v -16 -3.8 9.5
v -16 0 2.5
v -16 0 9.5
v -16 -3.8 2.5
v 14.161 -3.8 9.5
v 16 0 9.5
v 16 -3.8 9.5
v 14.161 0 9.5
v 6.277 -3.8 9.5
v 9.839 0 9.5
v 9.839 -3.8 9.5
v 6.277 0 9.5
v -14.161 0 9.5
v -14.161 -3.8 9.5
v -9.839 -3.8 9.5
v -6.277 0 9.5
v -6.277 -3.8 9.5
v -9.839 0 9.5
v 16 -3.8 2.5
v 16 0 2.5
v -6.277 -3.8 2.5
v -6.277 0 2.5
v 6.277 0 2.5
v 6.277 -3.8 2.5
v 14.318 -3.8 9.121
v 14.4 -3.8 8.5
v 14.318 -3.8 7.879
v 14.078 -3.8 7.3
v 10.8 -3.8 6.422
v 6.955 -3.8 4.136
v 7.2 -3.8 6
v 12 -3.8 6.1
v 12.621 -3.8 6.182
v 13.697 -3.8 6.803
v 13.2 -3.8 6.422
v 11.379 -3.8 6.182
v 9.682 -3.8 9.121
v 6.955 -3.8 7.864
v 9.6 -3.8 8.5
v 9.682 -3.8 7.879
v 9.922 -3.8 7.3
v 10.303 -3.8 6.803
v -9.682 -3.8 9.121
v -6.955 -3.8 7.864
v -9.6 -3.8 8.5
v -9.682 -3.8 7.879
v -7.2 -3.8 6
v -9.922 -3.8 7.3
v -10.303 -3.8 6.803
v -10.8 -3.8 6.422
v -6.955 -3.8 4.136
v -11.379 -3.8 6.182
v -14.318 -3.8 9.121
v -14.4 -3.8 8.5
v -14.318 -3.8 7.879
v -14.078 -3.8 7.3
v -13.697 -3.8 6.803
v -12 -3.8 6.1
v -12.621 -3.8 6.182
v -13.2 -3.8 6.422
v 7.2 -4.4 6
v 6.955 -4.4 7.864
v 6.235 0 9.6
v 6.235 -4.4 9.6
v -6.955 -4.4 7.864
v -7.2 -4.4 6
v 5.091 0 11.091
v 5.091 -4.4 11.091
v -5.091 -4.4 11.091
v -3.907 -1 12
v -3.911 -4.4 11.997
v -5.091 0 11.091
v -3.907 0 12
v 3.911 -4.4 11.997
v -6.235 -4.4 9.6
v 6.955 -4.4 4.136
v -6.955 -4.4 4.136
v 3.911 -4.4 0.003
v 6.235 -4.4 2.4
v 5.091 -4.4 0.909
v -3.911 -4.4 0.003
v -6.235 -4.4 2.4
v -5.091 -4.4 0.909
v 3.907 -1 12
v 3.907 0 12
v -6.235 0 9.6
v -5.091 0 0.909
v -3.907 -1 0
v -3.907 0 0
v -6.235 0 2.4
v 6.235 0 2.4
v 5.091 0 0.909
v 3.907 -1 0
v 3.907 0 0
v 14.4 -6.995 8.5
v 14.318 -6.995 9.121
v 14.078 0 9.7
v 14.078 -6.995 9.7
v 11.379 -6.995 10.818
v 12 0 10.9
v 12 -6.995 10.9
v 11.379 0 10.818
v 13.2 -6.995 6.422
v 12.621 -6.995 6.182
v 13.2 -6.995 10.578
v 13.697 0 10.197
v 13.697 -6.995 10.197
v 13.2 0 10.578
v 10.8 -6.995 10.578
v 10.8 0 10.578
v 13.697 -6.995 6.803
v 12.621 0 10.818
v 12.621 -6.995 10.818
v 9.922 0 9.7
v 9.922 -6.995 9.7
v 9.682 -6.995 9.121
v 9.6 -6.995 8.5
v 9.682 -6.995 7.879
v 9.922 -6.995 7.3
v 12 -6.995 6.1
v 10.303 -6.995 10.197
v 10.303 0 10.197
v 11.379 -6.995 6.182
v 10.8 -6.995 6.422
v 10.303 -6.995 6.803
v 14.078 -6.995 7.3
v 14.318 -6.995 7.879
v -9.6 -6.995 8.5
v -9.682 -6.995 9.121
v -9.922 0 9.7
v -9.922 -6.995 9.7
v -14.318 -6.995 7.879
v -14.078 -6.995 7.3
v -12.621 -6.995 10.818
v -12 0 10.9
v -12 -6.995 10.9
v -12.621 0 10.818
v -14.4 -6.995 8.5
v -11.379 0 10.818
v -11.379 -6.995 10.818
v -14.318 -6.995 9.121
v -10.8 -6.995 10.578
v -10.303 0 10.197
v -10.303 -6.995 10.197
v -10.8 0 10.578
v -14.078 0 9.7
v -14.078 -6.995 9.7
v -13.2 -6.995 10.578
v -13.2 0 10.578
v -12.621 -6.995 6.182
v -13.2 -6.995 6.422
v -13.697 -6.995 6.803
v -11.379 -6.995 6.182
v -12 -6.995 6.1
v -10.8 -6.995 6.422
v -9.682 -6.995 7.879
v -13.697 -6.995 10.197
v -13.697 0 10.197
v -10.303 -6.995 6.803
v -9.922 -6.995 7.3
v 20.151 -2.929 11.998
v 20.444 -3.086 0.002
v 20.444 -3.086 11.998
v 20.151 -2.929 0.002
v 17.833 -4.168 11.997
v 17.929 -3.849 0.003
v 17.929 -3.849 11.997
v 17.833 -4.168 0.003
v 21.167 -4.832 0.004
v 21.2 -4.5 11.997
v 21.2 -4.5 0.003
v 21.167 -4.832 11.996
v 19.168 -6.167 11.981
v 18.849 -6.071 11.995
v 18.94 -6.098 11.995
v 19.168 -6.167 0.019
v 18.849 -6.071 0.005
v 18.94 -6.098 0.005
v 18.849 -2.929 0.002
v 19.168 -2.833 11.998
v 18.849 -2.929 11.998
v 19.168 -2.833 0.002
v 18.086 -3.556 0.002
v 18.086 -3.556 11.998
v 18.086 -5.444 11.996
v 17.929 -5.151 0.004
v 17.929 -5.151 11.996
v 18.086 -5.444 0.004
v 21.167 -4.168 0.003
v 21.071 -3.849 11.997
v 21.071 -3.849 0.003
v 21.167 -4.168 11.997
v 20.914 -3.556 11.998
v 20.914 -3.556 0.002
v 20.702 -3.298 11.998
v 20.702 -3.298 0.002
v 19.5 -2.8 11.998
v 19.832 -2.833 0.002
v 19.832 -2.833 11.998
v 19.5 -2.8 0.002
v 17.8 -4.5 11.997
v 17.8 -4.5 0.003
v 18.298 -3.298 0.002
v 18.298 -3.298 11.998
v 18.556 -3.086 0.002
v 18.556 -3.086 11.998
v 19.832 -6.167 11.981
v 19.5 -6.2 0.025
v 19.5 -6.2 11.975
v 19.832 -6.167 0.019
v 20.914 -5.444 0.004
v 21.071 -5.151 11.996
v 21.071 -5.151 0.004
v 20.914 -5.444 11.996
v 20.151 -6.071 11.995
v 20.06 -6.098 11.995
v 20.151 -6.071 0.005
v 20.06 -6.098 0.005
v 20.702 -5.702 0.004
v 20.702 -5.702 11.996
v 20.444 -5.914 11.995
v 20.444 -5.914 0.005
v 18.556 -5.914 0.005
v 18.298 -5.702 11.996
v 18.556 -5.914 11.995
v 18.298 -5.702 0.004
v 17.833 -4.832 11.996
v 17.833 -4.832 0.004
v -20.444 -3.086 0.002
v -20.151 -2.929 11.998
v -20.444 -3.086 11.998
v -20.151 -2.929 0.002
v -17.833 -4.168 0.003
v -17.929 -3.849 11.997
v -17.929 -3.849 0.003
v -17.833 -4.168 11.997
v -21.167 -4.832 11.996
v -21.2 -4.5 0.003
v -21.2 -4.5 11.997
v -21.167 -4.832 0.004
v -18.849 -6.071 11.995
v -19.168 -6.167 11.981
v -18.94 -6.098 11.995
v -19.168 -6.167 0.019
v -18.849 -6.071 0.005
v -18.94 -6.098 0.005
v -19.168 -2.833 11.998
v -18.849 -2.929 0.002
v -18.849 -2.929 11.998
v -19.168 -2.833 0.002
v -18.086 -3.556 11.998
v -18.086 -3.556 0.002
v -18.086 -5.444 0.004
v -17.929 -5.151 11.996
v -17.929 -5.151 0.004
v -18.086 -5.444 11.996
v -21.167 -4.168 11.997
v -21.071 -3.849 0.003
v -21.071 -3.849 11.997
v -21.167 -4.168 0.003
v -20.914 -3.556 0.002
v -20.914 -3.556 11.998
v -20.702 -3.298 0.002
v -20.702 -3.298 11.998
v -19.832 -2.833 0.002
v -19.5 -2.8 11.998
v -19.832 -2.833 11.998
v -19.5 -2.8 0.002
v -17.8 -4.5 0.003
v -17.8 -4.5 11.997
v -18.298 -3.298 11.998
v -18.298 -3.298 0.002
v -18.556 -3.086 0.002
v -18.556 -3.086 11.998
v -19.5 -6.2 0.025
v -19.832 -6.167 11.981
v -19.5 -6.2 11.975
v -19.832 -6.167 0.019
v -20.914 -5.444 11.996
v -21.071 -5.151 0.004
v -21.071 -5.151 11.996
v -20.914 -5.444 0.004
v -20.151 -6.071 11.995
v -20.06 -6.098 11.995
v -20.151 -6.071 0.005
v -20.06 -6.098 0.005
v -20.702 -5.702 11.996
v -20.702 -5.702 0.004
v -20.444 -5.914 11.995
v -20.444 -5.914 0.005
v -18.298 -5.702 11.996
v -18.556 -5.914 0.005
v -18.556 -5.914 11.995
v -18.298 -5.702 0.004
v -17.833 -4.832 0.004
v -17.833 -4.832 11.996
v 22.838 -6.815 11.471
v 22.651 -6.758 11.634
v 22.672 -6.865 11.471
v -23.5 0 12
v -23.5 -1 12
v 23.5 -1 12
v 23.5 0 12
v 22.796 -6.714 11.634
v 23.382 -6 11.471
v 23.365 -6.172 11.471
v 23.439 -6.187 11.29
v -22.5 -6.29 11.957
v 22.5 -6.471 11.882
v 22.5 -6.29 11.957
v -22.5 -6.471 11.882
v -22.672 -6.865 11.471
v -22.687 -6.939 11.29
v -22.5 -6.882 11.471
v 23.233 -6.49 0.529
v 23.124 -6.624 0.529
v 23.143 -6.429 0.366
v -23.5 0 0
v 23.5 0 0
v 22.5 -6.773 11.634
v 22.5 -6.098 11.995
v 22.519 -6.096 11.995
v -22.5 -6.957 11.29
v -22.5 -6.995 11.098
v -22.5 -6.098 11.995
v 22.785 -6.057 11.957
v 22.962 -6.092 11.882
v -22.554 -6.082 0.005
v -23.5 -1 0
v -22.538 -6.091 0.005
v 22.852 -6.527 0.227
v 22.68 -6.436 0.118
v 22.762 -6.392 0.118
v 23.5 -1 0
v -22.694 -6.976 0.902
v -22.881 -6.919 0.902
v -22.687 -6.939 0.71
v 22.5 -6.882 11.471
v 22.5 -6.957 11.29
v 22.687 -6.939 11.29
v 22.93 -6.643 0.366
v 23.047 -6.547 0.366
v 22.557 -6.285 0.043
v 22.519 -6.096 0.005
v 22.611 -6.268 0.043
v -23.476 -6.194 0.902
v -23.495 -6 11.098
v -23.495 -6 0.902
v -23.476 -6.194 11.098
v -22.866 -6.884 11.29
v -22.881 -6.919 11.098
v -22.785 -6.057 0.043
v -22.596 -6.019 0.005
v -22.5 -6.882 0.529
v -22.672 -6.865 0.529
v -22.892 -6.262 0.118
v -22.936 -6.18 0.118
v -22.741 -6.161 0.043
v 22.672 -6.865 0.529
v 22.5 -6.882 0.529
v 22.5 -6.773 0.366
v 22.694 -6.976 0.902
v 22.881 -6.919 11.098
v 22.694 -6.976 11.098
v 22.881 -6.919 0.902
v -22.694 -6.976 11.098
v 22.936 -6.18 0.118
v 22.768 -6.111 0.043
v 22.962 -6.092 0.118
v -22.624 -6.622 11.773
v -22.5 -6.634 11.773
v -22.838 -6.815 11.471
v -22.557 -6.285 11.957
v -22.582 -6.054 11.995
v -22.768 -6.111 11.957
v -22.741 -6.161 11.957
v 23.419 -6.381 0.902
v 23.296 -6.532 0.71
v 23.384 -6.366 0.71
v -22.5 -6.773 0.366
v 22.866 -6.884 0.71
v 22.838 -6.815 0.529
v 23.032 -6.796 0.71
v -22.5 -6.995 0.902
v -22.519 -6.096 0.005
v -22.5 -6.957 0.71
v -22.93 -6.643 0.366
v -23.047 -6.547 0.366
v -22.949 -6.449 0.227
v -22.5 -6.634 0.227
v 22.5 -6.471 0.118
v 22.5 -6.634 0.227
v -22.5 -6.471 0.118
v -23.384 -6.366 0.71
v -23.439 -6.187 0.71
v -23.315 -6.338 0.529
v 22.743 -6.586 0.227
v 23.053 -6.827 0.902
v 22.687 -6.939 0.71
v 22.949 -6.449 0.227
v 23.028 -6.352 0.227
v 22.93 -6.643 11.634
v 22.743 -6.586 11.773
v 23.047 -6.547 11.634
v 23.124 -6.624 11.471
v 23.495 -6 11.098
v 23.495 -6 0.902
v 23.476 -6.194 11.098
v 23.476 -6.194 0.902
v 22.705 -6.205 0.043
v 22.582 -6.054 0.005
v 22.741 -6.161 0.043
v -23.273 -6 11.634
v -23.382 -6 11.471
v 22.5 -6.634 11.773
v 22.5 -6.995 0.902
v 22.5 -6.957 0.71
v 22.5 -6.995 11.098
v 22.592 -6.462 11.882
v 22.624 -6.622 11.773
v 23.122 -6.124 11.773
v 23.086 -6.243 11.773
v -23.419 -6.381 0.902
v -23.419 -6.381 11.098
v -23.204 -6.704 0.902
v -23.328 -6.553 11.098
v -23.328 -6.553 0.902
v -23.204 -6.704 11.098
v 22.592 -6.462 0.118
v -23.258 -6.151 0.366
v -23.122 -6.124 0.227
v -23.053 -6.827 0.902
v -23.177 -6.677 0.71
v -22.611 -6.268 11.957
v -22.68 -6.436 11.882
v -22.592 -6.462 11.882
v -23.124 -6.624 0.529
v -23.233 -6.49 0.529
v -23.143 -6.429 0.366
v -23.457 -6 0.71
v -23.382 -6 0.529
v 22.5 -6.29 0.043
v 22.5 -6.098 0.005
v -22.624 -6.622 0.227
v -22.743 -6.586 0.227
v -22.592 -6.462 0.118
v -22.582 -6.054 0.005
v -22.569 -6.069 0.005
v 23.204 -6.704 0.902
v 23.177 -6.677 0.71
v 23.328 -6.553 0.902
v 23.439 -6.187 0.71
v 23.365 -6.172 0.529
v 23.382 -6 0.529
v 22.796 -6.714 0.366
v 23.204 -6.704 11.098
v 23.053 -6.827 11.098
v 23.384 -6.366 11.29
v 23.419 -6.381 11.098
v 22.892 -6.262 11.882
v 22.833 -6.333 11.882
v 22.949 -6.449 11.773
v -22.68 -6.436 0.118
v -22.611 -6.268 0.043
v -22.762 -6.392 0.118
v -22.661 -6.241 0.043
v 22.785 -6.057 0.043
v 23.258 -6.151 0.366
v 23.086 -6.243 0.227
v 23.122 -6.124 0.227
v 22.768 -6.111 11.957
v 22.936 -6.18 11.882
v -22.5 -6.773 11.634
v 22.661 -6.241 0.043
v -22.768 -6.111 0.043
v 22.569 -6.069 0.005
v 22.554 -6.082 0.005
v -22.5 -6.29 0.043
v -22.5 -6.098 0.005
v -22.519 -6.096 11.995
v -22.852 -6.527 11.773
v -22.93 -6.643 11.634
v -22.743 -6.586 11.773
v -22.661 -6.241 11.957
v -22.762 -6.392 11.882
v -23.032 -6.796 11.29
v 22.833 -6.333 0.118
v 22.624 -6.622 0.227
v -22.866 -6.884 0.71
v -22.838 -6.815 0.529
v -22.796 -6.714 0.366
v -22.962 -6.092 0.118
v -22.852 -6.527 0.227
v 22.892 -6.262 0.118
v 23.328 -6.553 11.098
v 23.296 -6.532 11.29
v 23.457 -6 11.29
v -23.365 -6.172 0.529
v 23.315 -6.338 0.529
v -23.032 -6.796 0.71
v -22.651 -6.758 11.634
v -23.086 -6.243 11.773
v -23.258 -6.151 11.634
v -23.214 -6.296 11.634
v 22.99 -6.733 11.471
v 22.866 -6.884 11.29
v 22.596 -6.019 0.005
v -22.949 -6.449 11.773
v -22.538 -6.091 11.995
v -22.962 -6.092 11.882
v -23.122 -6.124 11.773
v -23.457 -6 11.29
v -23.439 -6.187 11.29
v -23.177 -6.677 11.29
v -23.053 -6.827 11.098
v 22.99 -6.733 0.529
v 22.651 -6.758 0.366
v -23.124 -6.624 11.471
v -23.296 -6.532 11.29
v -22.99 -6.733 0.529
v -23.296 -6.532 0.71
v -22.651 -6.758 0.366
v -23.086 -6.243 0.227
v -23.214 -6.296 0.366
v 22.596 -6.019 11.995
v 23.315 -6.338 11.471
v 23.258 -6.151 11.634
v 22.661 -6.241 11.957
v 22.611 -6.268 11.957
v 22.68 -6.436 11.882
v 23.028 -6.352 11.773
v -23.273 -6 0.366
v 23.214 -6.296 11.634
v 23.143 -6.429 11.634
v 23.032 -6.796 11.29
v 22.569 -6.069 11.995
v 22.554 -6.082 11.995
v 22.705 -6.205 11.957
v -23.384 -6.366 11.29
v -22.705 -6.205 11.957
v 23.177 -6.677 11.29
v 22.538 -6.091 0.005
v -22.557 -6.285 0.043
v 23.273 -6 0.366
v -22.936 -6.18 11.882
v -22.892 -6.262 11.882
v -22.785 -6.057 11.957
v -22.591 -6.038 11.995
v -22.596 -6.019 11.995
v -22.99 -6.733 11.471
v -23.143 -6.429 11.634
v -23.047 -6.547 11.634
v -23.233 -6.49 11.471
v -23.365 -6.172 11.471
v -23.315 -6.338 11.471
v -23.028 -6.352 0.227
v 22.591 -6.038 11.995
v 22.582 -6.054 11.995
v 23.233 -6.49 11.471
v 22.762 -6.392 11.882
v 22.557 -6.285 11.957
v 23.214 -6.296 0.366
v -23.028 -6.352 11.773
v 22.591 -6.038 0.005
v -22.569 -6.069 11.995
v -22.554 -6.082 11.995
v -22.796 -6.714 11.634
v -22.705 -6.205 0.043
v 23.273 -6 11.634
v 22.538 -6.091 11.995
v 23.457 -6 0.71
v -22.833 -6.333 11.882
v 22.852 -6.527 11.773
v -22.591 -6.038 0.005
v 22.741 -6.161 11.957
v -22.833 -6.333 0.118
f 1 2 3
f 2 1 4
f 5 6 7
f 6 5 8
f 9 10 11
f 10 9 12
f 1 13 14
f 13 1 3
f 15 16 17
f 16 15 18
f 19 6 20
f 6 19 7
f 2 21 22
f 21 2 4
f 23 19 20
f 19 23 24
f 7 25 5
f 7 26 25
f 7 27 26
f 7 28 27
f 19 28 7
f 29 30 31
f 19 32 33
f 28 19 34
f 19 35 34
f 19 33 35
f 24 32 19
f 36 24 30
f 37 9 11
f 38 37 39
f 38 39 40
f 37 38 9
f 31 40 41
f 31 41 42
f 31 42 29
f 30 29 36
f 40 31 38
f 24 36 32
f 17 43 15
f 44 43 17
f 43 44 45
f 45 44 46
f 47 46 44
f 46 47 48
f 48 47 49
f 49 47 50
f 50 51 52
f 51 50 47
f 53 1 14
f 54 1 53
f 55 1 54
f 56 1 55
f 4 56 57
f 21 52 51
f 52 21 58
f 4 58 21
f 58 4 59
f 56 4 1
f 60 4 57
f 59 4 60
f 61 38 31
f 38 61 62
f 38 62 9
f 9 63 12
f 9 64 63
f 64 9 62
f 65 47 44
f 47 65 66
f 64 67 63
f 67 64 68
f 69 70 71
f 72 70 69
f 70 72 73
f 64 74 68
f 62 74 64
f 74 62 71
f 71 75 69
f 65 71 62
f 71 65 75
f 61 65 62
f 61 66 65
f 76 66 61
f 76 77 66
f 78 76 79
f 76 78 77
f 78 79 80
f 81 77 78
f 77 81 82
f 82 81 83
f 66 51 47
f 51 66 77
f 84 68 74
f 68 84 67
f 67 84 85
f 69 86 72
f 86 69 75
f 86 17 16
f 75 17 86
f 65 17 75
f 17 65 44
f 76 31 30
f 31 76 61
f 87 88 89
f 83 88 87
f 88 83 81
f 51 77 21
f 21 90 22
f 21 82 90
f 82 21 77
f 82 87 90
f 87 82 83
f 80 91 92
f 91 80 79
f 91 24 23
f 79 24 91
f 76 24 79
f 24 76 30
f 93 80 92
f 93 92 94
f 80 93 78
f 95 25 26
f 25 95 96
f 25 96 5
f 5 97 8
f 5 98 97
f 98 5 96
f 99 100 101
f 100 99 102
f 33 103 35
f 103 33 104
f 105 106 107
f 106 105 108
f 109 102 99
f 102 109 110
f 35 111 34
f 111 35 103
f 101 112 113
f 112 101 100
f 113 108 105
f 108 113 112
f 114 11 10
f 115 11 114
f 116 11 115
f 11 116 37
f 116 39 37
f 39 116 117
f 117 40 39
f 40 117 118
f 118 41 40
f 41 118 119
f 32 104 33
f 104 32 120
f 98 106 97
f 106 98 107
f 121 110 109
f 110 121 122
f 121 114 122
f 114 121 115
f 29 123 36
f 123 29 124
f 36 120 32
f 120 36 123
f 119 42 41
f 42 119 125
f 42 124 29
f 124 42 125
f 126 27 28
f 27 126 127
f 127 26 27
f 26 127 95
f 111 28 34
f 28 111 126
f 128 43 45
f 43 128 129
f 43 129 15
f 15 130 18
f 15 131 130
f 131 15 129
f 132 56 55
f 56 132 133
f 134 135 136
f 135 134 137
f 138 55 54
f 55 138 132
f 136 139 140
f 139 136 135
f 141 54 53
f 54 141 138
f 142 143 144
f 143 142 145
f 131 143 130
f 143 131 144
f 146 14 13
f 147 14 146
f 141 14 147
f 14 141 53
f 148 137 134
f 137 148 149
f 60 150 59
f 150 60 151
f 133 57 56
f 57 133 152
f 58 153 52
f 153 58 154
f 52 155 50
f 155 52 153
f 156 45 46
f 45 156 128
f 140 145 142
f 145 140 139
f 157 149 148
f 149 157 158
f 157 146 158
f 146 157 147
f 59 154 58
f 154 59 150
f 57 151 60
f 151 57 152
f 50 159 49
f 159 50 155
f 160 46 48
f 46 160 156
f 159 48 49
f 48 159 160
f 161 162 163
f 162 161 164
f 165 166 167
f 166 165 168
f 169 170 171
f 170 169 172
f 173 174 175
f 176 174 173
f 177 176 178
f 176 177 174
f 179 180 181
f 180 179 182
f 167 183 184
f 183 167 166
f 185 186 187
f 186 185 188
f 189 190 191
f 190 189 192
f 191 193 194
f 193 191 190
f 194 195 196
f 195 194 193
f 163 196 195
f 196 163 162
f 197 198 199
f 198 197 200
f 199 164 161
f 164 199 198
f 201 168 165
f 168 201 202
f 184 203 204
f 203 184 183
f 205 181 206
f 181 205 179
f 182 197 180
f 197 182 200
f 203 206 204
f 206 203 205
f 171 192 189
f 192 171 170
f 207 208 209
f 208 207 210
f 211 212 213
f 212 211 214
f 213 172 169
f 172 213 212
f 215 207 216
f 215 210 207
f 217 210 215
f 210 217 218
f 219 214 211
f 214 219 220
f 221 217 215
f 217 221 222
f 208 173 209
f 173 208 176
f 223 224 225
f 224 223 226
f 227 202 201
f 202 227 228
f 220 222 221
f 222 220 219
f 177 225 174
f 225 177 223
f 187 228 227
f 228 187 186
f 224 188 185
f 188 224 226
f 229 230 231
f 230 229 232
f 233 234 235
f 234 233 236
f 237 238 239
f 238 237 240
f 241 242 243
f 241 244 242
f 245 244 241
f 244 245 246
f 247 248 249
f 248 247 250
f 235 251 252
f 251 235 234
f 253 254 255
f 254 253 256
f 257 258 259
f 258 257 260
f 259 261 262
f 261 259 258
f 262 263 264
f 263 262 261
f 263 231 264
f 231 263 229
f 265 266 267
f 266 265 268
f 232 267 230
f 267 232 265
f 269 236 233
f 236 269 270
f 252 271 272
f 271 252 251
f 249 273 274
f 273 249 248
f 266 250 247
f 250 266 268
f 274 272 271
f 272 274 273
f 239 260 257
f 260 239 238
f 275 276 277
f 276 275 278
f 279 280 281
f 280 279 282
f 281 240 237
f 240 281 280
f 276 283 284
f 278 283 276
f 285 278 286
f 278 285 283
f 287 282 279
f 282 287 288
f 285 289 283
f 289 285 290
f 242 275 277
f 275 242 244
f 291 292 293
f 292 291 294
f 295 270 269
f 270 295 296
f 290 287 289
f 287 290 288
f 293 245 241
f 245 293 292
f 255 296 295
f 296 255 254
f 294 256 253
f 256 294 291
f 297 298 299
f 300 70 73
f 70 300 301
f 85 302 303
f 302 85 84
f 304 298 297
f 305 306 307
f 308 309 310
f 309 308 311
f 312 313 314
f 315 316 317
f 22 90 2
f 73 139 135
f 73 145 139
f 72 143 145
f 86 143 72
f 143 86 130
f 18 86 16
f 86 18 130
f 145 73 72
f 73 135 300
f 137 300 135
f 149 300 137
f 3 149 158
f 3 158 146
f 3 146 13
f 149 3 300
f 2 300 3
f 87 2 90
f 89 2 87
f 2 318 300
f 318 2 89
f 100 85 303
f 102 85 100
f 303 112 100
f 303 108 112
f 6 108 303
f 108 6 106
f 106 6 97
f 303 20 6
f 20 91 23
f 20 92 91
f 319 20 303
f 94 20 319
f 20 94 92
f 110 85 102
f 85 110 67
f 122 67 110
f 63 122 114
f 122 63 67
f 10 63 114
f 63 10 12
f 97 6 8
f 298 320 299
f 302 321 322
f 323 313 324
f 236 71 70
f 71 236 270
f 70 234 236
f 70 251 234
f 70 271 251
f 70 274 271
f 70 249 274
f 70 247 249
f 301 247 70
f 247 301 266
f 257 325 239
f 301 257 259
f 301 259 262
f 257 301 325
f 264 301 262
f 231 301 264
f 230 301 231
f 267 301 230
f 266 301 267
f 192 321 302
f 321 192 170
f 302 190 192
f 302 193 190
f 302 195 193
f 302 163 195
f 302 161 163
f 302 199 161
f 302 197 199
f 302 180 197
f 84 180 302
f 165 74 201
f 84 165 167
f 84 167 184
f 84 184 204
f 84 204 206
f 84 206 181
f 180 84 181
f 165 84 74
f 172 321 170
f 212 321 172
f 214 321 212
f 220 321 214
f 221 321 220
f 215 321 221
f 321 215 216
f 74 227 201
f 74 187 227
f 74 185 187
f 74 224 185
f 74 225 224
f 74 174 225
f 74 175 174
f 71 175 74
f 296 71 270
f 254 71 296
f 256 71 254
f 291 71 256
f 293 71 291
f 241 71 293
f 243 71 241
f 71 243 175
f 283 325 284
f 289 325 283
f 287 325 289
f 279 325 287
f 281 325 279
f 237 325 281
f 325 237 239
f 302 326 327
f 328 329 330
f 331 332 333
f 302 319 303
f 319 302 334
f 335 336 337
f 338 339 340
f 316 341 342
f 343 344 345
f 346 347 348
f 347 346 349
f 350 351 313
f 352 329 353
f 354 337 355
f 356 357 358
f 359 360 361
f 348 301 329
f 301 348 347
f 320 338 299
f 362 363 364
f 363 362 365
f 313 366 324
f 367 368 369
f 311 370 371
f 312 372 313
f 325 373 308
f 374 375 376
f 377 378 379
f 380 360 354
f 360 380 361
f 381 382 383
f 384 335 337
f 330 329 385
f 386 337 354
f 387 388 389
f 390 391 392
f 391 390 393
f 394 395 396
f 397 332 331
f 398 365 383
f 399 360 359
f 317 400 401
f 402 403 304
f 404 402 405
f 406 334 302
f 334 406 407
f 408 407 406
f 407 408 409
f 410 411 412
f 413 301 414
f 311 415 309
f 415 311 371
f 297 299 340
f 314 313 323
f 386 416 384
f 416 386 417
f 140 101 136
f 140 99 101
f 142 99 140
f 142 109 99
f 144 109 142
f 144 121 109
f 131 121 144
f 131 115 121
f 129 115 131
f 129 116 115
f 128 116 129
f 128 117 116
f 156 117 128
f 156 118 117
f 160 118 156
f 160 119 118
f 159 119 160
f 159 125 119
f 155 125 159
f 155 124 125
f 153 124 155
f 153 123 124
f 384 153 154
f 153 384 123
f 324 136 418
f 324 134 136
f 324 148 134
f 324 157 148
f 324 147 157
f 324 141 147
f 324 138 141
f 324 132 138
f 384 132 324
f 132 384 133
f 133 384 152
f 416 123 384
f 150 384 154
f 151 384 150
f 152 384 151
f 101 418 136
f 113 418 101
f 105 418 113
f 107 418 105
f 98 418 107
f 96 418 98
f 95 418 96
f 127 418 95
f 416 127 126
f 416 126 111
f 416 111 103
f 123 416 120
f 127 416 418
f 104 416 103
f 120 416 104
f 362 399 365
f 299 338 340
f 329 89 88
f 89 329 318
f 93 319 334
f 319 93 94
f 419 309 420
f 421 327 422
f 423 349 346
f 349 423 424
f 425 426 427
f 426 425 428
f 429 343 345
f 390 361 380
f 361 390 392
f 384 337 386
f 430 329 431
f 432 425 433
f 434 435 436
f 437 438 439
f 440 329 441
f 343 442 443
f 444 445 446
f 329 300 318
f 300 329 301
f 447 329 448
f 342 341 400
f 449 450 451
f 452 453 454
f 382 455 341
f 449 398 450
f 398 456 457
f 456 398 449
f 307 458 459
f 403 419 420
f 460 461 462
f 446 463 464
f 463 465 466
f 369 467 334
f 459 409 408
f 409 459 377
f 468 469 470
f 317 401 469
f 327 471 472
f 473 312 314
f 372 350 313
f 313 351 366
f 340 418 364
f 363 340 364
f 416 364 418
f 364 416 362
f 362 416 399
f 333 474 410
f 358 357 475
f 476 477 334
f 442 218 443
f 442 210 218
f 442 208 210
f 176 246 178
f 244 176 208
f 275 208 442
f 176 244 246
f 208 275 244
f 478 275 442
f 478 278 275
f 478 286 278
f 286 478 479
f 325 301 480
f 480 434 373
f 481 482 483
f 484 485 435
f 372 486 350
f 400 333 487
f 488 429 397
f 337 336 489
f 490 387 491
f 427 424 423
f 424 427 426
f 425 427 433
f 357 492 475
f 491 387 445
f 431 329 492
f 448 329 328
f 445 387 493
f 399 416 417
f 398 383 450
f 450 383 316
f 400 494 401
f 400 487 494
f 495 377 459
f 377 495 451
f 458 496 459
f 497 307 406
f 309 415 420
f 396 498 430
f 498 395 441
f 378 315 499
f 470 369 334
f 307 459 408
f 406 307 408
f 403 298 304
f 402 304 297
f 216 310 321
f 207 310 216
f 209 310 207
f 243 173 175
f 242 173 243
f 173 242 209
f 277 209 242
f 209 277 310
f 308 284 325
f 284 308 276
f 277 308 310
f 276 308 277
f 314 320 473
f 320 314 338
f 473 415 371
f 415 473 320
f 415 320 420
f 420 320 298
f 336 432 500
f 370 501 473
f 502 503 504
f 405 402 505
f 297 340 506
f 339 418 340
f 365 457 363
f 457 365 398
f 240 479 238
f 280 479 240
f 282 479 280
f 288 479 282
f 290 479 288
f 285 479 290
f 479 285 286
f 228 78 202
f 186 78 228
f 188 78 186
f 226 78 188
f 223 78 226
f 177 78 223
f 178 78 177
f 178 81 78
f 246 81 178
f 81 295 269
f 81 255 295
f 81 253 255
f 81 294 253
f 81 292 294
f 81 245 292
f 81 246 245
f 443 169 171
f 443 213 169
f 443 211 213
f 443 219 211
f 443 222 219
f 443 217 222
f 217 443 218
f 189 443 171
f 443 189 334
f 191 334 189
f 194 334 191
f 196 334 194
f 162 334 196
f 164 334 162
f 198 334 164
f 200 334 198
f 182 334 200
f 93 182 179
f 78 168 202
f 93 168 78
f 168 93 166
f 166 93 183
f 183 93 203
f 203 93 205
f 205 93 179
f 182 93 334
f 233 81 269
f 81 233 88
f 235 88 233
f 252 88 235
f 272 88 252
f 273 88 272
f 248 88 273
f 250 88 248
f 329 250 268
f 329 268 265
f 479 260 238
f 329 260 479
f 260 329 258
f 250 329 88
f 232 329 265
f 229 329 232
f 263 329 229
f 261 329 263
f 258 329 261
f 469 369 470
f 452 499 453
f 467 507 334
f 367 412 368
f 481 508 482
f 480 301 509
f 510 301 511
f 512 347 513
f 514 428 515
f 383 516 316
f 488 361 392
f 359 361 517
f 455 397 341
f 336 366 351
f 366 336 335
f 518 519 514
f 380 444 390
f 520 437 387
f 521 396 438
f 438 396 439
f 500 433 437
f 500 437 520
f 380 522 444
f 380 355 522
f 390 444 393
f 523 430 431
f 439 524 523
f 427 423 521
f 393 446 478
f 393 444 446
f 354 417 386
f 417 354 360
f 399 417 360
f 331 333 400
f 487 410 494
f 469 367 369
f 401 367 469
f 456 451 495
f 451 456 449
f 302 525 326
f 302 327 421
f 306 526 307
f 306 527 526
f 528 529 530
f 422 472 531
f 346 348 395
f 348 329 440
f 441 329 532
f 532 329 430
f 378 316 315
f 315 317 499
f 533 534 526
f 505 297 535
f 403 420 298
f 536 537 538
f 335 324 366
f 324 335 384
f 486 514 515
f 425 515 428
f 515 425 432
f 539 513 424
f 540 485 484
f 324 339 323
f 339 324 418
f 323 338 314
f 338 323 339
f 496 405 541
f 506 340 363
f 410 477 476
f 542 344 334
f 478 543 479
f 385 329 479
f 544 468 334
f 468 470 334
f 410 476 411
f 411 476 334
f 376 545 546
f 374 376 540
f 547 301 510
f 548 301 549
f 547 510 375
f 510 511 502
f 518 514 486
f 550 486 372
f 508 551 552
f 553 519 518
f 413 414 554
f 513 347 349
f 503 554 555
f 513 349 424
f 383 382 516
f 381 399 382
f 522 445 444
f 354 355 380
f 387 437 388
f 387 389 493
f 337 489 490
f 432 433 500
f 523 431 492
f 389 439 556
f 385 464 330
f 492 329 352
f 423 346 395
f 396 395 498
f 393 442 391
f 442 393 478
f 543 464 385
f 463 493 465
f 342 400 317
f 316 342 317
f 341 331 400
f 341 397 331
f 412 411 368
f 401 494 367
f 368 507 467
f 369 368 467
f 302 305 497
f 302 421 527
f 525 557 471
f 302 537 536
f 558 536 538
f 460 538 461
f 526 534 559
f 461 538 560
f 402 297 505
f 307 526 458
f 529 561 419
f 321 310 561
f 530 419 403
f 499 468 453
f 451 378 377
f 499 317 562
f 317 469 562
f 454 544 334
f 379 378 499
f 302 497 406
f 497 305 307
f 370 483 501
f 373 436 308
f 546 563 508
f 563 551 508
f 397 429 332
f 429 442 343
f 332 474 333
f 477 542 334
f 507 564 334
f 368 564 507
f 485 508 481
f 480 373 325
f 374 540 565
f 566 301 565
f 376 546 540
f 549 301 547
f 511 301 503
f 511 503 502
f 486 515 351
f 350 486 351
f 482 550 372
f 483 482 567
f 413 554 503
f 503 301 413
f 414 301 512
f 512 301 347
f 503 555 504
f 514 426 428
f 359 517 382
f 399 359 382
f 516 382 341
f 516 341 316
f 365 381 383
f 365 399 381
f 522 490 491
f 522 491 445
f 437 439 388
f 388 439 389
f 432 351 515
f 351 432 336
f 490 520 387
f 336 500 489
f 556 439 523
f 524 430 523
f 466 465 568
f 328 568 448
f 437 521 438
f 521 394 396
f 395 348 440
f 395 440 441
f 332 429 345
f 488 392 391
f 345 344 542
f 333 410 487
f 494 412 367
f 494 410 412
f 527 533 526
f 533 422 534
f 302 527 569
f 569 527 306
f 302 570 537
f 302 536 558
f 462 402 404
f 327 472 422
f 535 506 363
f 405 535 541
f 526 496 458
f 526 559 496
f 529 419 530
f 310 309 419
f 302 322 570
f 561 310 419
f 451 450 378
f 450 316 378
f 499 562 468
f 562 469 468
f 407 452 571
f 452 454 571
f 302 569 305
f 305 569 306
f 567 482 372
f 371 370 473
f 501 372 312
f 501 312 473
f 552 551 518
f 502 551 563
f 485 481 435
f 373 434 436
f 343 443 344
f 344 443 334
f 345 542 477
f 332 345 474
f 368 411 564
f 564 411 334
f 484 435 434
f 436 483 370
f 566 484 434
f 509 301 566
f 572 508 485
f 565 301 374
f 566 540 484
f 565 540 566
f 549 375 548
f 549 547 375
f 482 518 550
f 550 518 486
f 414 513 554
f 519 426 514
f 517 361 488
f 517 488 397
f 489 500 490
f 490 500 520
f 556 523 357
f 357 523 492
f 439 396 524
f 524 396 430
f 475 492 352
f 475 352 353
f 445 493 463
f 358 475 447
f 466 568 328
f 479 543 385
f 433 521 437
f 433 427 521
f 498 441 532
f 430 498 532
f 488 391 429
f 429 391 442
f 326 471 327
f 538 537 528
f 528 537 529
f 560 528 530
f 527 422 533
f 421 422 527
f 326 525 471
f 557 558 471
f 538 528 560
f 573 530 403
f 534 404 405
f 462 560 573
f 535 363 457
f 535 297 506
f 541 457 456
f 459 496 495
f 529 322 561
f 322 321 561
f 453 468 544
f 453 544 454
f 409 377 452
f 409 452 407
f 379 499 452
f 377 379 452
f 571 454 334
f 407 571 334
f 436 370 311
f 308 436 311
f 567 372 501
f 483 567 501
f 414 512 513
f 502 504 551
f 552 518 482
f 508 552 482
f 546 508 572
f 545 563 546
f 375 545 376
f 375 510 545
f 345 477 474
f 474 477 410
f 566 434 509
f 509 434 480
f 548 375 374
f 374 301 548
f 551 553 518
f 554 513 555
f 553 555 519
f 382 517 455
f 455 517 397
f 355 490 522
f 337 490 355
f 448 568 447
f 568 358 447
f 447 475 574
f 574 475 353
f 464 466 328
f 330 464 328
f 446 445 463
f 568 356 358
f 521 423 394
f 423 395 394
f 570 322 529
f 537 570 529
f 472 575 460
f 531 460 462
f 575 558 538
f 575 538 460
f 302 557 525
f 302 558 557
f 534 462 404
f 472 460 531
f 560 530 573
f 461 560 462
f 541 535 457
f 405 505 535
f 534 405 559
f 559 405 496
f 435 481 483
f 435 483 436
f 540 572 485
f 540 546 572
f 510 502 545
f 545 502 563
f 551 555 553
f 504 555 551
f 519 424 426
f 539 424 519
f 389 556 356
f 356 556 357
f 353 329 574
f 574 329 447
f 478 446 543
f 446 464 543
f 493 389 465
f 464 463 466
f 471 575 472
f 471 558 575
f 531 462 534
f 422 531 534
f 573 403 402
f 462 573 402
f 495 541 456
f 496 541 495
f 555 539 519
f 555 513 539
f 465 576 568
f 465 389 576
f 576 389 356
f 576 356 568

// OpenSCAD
union() // SharpSCAD generated scene: buttonsandwich
{
  { // module: buttonsandwich
    difference()
    {
      translate( v= [ 0, -3.5, 6 ] )
      {
        { // module: roundedcube
          translate( v= [ -23.5, -3.5, -6 ] )
          {
            translate( v= [ 0, 0, 0 ] )
            {
              hull()
              {
                translate( v= [ 1, 1, 1 ] )
                {
                  sphere( r= 1, $fn= 32 );
                }
                translate( v= [ 1, 6, 1 ] )
                {
                  sphere( r= 1, $fn= 32 );
                }
                translate( v= [ 1, 1, 11 ] )
                {
                  sphere( r= 1, $fn= 32 );
                }
                translate( v= [ 1, 6, 11 ] )
                {
                  sphere( r= 1, $fn= 32 );
                }
                translate( v= [ 46, 1, 1 ] )
                {
                  sphere( r= 1, $fn= 32 );
                }
                translate( v= [ 46, 6, 1 ] )
                {
                  sphere( r= 1, $fn= 32 );
                }
                translate( v= [ 46, 1, 11 ] )
                {
                  sphere( r= 1, $fn= 32 );
                }
                translate( v= [ 46, 6, 11 ] )
                {
                  sphere( r= 1, $fn= 32 );
                }
                union()
                {
                  translate( v= [ 0, 6, 0 ] )
                  {
                    cube( size= [ 47, 1, 12 ] );
                  }
                }
              }
            }
          }
        }
      }
      union()
      {
        translate( v= [ 0, 0.1, 6 ] )
        {
          { // module: button
            union()
            {
              translate( v= [ 0, -1.9, 0 ] )
              {
                cube( size= [ 32, 4, 7 ], center= true );
              }
              rotate( a= [ 90, 0, 0 ] )
              {
                cylinder( r= 7.2, $fn= 24, h= 4.5 );
              }
              rotate( a= [ -90, 0, 0 ] )
              {
                cylinder( r= 4.1, $fn= 24, h= 4 );
              }
            }
          }
        }
        translate( v= [ 12, -3.5, 8.5 ] )
        {
          rotate( a= [ 90, 0, 0 ] )
          {
            cylinder( r= 2.4, center= true, $fn= 24, h= 9 );
          }
        }
        translate( v= [ -12, -3.5, 8.5 ] )
        {
          rotate( a= [ 90, 0, 0 ] )
          {
            cylinder( r= 2.4, center= true, $fn= 24, h= 9 );
          }
        }
      }
      translate( v= [ 0, -24, 0 ] )
      {
        union()
        {
          translate( v= [ 19.5, 19.5, -0.1 ] )
          {
            union()
            {
              translate( v= [ 0, 0, 31.3 ] )
              {
                cylinder( r= 2.7, $fn= 32, h= 3.8 );
              }
              cylinder( r= 1.7, $fn= 32, h= 35.1 );
            }
          }
          mirror( v= [ 1, 0, 0 ] )
          {
            translate( v= [ 19.5, 19.5, -0.1 ] )
            {
              union()
              {
                translate( v= [ 0, 0, 31.3 ] )
                {
                  cylinder( r= 2.7, $fn= 32, h= 3.8 );
                }
                cylinder( r= 1.7, $fn= 32, h= 35.1 );
              }
            }
          }
        }
      }
    }
  }
}
